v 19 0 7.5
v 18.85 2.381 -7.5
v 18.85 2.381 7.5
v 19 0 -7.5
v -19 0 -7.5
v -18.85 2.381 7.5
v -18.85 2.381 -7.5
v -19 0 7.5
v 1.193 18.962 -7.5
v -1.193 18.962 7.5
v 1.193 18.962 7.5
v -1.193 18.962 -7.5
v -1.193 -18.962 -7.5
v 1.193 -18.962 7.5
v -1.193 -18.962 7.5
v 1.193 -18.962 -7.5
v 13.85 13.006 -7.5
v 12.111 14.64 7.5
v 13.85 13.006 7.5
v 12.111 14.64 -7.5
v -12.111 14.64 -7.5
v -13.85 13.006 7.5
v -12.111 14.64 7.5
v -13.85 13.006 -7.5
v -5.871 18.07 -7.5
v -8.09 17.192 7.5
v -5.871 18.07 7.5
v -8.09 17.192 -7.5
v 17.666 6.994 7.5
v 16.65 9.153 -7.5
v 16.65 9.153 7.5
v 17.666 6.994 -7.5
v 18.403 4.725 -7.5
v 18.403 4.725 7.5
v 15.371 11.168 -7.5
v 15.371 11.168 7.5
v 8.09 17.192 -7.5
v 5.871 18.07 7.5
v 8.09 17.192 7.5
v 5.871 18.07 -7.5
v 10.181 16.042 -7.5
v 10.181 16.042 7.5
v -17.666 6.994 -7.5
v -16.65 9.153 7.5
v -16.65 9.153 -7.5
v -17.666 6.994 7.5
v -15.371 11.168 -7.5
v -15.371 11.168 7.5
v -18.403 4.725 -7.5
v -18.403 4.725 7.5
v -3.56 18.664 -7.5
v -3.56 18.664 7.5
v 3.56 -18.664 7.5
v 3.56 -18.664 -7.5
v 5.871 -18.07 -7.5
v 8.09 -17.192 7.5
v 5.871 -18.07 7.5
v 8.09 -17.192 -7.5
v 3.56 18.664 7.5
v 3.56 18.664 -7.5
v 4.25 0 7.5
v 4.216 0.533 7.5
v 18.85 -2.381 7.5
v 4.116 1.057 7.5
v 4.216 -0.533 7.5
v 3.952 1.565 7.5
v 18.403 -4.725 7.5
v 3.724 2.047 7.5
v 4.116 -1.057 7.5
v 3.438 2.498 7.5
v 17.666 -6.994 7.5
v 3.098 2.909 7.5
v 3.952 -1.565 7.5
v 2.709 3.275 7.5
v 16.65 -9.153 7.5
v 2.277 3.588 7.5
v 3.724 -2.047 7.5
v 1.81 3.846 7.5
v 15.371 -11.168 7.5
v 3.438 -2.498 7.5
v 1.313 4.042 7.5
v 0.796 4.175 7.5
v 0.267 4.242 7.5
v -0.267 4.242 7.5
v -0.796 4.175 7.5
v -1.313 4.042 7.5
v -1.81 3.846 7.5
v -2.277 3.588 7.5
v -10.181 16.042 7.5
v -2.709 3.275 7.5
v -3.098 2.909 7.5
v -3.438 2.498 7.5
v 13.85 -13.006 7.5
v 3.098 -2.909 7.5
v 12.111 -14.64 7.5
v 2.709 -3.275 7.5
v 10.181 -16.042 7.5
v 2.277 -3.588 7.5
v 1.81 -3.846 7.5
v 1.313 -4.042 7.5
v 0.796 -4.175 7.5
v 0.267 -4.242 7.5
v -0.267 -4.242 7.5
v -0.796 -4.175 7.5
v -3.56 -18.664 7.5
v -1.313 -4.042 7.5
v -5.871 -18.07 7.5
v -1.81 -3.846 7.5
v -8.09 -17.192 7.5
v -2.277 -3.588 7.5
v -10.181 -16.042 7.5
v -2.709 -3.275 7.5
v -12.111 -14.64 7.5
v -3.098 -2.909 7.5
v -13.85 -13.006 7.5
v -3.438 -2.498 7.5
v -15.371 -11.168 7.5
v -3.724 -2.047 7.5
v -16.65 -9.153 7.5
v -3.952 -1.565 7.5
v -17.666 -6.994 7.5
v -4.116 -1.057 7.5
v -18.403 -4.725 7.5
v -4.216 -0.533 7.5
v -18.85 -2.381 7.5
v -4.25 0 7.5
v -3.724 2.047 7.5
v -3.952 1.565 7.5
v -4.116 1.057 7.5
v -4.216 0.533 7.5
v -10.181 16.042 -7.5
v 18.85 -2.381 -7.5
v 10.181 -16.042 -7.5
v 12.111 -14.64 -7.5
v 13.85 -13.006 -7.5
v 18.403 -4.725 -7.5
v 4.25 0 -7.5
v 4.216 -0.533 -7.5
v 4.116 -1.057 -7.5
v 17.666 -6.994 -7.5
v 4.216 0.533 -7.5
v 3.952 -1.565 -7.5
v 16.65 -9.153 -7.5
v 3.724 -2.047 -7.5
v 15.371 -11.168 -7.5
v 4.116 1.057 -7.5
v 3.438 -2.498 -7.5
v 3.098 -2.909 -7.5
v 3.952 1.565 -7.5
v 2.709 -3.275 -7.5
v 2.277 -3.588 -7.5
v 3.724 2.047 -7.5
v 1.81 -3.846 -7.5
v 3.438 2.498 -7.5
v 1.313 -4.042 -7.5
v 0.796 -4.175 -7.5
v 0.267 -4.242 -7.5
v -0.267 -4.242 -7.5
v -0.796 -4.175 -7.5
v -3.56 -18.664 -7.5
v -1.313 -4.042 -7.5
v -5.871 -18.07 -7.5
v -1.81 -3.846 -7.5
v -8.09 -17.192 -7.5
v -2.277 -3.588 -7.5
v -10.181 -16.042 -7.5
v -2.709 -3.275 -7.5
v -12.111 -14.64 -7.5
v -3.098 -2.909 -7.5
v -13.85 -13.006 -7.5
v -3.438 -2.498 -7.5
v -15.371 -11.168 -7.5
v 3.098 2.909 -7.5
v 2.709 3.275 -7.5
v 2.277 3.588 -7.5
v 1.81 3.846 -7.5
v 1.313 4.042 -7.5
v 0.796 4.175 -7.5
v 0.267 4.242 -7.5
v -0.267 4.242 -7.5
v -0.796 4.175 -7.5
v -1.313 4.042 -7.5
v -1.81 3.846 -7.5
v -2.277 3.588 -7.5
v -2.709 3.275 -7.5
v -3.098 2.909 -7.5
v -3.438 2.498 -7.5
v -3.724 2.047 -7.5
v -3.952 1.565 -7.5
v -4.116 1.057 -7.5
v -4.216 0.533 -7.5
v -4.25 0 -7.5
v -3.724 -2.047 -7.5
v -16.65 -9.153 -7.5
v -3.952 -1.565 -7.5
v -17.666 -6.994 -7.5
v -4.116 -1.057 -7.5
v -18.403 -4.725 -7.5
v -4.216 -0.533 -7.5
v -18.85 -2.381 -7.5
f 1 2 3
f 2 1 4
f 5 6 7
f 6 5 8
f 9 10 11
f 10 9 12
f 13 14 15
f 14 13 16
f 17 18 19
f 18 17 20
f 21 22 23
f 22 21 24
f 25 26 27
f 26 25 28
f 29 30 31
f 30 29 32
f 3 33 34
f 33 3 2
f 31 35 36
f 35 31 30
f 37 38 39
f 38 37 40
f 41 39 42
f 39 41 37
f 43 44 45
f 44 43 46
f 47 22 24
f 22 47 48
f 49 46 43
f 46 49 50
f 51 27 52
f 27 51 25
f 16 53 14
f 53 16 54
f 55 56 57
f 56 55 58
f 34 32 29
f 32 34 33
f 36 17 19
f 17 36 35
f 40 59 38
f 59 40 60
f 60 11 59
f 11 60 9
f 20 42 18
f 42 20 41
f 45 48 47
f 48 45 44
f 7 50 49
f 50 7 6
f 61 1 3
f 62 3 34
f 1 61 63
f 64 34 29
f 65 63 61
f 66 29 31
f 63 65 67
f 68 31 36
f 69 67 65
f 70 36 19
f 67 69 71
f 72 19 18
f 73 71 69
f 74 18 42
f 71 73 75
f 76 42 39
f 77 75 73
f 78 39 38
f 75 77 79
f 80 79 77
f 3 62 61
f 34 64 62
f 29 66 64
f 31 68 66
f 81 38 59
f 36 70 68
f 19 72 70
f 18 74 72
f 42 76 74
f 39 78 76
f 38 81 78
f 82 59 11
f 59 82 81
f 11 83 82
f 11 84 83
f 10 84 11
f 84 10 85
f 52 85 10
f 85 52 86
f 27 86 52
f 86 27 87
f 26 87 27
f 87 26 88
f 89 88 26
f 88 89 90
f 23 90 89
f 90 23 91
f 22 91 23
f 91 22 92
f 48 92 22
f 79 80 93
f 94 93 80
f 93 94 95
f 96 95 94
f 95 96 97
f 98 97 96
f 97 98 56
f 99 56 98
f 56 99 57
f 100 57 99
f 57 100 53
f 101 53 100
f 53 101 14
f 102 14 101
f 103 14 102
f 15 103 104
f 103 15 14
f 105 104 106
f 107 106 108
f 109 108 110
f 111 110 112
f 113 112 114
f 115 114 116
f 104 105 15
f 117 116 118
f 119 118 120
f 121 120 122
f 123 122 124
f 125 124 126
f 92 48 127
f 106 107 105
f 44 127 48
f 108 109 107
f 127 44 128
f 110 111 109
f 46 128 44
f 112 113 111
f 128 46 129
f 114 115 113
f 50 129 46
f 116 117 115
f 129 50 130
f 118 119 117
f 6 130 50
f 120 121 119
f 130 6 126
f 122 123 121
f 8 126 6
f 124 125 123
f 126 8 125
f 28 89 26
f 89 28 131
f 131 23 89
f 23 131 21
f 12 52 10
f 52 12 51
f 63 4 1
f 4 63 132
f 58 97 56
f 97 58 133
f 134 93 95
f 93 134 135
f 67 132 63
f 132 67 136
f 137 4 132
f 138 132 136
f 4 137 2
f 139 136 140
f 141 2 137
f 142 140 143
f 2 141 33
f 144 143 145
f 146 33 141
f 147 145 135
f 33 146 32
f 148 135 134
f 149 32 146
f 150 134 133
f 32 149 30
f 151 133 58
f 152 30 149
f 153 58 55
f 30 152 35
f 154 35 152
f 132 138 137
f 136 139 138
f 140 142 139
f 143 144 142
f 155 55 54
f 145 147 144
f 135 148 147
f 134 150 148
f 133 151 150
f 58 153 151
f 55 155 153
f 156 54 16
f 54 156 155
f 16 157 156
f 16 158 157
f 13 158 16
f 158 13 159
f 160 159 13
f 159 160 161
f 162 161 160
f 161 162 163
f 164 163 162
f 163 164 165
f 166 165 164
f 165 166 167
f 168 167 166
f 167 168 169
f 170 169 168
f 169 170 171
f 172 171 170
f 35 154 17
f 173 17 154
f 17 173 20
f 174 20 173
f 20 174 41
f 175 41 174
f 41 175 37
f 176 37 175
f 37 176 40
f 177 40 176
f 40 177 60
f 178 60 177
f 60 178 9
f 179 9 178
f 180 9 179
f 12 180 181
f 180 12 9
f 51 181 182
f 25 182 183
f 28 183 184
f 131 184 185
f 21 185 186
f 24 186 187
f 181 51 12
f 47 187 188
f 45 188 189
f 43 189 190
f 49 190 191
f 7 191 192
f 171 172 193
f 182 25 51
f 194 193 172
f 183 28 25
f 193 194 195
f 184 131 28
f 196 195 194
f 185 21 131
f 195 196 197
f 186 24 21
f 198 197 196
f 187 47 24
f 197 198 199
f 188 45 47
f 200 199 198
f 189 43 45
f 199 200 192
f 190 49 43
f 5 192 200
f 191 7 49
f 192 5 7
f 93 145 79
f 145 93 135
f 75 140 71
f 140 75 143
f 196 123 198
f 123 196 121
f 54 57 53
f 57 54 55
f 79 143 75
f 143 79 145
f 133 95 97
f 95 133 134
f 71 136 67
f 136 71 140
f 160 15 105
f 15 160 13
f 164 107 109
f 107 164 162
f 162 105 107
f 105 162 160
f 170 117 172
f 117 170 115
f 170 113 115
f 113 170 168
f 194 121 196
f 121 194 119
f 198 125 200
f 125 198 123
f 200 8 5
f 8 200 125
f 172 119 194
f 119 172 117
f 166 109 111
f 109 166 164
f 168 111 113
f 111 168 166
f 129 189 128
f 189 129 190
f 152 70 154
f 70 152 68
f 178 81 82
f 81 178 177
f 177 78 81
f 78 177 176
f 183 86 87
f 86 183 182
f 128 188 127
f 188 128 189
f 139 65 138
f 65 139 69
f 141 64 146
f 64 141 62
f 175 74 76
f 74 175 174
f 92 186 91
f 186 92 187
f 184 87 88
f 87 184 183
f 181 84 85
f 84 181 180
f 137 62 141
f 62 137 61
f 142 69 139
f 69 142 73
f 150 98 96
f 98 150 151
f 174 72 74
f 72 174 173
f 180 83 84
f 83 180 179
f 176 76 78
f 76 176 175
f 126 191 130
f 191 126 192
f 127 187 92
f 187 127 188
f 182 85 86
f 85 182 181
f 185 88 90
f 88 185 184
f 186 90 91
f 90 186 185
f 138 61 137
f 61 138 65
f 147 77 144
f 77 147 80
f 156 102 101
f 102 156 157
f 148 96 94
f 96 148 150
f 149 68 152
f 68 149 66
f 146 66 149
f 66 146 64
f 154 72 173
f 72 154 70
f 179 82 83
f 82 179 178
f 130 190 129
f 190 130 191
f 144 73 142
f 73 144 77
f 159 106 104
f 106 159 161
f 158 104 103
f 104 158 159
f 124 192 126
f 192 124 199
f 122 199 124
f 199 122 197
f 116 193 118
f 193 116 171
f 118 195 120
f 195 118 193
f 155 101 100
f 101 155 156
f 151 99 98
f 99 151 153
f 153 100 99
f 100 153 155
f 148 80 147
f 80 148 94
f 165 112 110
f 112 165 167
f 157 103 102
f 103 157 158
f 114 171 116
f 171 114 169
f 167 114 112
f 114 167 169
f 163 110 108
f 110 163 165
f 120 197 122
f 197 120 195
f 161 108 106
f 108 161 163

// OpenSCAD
$fn = 50;


difference() {
	union() {
		translate(v = [0, 0, -7.5000000000]) {
			cylinder(h = 15, r = 19.0000000000);
		}
	}
	union() {
		translate(v = [0, 0, -100.0000000000]) {
			cylinder(h = 200, r = 4.2500000000);
		}
	}
}
